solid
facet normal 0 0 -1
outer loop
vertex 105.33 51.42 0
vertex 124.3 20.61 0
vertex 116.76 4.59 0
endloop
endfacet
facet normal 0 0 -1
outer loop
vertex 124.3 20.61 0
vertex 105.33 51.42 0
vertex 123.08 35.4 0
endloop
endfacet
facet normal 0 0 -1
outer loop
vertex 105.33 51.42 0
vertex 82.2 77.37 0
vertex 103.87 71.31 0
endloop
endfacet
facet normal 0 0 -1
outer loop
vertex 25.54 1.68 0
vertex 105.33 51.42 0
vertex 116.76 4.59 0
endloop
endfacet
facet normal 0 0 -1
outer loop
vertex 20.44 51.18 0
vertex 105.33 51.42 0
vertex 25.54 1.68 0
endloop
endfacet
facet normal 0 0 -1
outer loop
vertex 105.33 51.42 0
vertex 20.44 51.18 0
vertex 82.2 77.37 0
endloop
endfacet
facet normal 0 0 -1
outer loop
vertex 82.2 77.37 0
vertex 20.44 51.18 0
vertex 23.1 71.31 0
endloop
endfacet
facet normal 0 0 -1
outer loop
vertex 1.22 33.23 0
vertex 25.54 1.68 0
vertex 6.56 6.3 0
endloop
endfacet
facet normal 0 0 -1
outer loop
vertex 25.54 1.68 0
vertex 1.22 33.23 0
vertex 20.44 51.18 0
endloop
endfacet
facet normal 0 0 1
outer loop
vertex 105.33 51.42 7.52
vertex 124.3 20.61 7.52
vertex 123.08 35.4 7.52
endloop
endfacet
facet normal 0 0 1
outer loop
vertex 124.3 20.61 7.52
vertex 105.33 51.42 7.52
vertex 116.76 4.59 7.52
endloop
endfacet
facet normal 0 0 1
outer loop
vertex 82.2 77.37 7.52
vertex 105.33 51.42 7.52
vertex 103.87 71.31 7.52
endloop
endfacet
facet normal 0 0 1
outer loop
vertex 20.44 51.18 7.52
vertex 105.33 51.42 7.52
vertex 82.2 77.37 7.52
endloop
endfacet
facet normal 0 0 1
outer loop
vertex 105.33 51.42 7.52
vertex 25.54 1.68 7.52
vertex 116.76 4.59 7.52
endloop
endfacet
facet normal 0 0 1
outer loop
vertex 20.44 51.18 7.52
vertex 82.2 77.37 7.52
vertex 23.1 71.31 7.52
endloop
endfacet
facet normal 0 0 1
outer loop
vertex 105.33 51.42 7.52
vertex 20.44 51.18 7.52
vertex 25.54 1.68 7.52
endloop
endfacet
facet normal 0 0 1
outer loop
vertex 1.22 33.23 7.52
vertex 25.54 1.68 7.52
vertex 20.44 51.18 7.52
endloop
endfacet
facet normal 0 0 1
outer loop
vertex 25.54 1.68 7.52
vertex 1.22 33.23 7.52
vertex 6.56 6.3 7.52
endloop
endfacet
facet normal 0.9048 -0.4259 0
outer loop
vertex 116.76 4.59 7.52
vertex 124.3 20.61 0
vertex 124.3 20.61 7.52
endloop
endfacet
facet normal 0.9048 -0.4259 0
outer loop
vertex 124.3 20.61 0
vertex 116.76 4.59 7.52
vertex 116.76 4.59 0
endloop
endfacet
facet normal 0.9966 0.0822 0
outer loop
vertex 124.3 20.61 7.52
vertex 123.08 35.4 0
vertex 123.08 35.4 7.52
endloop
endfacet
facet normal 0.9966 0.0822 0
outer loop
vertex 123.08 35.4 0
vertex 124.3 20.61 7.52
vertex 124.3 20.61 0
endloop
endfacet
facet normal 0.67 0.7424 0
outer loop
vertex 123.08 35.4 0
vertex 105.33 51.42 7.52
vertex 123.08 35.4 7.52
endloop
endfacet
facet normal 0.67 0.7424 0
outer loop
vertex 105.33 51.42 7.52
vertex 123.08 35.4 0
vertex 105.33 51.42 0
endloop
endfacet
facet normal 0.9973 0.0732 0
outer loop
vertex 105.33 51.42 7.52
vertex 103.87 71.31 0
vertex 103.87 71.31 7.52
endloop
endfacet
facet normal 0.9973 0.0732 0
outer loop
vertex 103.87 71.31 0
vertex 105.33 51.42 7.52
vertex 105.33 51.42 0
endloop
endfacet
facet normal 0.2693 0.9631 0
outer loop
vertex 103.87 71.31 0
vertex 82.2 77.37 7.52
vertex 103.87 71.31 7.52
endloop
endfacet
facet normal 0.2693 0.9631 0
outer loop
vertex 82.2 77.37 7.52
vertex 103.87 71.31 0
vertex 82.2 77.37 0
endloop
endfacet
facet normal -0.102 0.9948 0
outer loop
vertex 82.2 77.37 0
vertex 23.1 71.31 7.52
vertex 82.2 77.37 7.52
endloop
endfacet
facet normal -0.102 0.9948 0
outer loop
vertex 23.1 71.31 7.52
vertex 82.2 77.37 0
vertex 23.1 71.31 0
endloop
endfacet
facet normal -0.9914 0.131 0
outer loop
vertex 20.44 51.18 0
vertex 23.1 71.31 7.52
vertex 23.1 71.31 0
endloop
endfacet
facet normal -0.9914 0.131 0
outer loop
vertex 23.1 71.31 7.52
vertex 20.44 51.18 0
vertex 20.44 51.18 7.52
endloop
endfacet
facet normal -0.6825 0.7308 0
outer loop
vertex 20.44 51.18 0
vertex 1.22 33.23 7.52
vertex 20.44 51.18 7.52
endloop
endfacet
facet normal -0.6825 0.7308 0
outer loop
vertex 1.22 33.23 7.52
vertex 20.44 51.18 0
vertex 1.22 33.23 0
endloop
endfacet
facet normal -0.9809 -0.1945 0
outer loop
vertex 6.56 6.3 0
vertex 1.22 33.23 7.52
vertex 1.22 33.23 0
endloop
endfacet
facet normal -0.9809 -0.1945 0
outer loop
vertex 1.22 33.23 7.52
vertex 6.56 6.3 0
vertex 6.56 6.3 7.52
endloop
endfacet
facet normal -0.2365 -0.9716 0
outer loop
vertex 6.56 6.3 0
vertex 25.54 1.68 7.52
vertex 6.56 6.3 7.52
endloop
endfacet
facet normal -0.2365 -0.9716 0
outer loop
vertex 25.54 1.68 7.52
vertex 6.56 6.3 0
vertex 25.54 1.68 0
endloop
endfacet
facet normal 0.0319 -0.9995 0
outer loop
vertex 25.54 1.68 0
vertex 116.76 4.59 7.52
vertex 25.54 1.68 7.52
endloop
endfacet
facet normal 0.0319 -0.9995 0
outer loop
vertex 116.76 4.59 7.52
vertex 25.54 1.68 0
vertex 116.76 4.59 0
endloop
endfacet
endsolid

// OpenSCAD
/* doodle-meta {"version":1,"parameters":{"width":{"label":"Overall width","description":"Changes the body width","unit":"mm","feature":"body_width"},"height":{"label":"Overall height","description":"Changes the body height","unit":"mm","feature":"body_height"},"thickness":{"label":"Plate thickness","description":"Changes the depth of the grille plate","unit":"mm","feature":"body_thickness"},"slot_count":{"label":"Slot count","description":"Number of vertical slots","unit":"count","feature":"slot_pattern"},"slot_width":{"label":"Slot width","description":"Width of each vertical slot","unit":"mm","feature":"slot_pattern"},"slot_height":{"label":"Slot height","description":"Height of each vertical slot","unit":"mm","feature":"slot_pattern"},"headlight_diameter":{"label":"Headlight diameter","description":"Diameter of the circular headlight openings","unit":"mm","feature":"headlight_openings"}},"features":{"body_width":{"kind":"dimension","axis":"x","label":"Overall width"},"body_height":{"kind":"dimension","axis":"z","label":"Overall height"},"body_thickness":{"kind":"dimension","axis":"y","label":"Plate thickness"},"slot_pattern":{"kind":"region","label":"Vertical Slots","min":[36.5,0,10.0],"max":[89.5,7.52,68.0]},"headlight_openings":{"kind":"region","label":"Headlights","min":[10.0,0,15.0],"max":[116.0,7.52,45.0]}}} */

// Parameters
width = 126.0;
height = 78.83;
thickness = 7.52;
slot_count = 7;
slot_width = 5.0;
slot_height = 58.0;
headlight_diameter = 20.0;

// Derived constants
eps = 0.1;
slot_pitch = 8.0;
slot_start_x = (width - (slot_count - 1) * slot_pitch) / 2;
slot_center_z = height * 0.55; // Approx 43mm from bottom
headlight_center_z = height * 0.38; // Approx 30mm from bottom
headlight_offset_x = width * 0.33; // Approx 41.5mm from center

// Main Body Profile (Front View XZ plane)
// Constructed from measured polygon points scaled to mm
module grille_body() {
    // Define points in XZ (X from left, Z from bottom)
    // Normalized u -> X = u * width
    // Normalized v -> Z = (1 - v) * height
    
    // Points from measured_view_geometry view_2 outer_profile
    // [u, v] -> [X, Z]
    // 0.0097, 0.5785 -> 1.22, 33.23
    // 0.0521, 0.9202 -> 6.56, 6.30
    // 0.2027, 0.9787 -> 25.54, 1.68
    // 0.9267, 0.9417 -> 116.76, 4.59
    // 0.9865, 0.7385 -> 124.30, 20.61
    // 0.9768, 0.5509 -> 123.08, 35.40
    // 0.8359, 0.3478 -> 105.33, 51.42
    // 0.8243, 0.0954 -> 103.87, 71.31
    // 0.6524, 0.0185 -> 82.20, 77.37
    // 0.1833, 0.0954 -> 23.10, 71.31
    // 0.1622, 0.3509 -> 20.44, 51.18
    
    polygon_points = [
        [1.22, 33.23],
        [6.56, 6.30],
        [25.54, 1.68],
        [116.76, 4.59],
        [124.30, 20.61],
        [123.08, 35.40],
        [105.33, 51.42],
        [103.87, 71.31],
        [82.20, 77.37],
        [23.10, 71.31],
        [20.44, 51.18]
    ];
    
    // Extrude along Y
    linear_extrude(height = thickness, center = false) {
        polygon(polygon_points);
    }
}

// Vertical Slots
module vertical_slots() {
    for (i = [0 : slot_count - 1]) {
        translate([slot_start_x + i * slot_pitch, -eps, slot_center_z - slot_height/2]) {
            cube([slot_width, thickness + 2*eps, slot_height], center = false);
        }
    }
}

// Headlight Openings
module headlight_openings() {
    // Left Headlight
    translate([width/2 - headlight_offset_x, -eps, headlight_center_z]) {
        rotate([90, 0, 0]) {
            cylinder(h = thickness + 2*eps, d = headlight_diameter, center = true);
        }
    }
    // Right Headlight
    translate([width/2 + headlight_offset_x, -eps, headlight_center_z]) {
        rotate([90, 0, 0]) {
            cylinder(h = thickness + 2*eps, d = headlight_diameter, center = true);
        }
    }
}

// Final Assembly
difference() {
    grille_body();
    vertical_slots();
    headlight_openings();
}
